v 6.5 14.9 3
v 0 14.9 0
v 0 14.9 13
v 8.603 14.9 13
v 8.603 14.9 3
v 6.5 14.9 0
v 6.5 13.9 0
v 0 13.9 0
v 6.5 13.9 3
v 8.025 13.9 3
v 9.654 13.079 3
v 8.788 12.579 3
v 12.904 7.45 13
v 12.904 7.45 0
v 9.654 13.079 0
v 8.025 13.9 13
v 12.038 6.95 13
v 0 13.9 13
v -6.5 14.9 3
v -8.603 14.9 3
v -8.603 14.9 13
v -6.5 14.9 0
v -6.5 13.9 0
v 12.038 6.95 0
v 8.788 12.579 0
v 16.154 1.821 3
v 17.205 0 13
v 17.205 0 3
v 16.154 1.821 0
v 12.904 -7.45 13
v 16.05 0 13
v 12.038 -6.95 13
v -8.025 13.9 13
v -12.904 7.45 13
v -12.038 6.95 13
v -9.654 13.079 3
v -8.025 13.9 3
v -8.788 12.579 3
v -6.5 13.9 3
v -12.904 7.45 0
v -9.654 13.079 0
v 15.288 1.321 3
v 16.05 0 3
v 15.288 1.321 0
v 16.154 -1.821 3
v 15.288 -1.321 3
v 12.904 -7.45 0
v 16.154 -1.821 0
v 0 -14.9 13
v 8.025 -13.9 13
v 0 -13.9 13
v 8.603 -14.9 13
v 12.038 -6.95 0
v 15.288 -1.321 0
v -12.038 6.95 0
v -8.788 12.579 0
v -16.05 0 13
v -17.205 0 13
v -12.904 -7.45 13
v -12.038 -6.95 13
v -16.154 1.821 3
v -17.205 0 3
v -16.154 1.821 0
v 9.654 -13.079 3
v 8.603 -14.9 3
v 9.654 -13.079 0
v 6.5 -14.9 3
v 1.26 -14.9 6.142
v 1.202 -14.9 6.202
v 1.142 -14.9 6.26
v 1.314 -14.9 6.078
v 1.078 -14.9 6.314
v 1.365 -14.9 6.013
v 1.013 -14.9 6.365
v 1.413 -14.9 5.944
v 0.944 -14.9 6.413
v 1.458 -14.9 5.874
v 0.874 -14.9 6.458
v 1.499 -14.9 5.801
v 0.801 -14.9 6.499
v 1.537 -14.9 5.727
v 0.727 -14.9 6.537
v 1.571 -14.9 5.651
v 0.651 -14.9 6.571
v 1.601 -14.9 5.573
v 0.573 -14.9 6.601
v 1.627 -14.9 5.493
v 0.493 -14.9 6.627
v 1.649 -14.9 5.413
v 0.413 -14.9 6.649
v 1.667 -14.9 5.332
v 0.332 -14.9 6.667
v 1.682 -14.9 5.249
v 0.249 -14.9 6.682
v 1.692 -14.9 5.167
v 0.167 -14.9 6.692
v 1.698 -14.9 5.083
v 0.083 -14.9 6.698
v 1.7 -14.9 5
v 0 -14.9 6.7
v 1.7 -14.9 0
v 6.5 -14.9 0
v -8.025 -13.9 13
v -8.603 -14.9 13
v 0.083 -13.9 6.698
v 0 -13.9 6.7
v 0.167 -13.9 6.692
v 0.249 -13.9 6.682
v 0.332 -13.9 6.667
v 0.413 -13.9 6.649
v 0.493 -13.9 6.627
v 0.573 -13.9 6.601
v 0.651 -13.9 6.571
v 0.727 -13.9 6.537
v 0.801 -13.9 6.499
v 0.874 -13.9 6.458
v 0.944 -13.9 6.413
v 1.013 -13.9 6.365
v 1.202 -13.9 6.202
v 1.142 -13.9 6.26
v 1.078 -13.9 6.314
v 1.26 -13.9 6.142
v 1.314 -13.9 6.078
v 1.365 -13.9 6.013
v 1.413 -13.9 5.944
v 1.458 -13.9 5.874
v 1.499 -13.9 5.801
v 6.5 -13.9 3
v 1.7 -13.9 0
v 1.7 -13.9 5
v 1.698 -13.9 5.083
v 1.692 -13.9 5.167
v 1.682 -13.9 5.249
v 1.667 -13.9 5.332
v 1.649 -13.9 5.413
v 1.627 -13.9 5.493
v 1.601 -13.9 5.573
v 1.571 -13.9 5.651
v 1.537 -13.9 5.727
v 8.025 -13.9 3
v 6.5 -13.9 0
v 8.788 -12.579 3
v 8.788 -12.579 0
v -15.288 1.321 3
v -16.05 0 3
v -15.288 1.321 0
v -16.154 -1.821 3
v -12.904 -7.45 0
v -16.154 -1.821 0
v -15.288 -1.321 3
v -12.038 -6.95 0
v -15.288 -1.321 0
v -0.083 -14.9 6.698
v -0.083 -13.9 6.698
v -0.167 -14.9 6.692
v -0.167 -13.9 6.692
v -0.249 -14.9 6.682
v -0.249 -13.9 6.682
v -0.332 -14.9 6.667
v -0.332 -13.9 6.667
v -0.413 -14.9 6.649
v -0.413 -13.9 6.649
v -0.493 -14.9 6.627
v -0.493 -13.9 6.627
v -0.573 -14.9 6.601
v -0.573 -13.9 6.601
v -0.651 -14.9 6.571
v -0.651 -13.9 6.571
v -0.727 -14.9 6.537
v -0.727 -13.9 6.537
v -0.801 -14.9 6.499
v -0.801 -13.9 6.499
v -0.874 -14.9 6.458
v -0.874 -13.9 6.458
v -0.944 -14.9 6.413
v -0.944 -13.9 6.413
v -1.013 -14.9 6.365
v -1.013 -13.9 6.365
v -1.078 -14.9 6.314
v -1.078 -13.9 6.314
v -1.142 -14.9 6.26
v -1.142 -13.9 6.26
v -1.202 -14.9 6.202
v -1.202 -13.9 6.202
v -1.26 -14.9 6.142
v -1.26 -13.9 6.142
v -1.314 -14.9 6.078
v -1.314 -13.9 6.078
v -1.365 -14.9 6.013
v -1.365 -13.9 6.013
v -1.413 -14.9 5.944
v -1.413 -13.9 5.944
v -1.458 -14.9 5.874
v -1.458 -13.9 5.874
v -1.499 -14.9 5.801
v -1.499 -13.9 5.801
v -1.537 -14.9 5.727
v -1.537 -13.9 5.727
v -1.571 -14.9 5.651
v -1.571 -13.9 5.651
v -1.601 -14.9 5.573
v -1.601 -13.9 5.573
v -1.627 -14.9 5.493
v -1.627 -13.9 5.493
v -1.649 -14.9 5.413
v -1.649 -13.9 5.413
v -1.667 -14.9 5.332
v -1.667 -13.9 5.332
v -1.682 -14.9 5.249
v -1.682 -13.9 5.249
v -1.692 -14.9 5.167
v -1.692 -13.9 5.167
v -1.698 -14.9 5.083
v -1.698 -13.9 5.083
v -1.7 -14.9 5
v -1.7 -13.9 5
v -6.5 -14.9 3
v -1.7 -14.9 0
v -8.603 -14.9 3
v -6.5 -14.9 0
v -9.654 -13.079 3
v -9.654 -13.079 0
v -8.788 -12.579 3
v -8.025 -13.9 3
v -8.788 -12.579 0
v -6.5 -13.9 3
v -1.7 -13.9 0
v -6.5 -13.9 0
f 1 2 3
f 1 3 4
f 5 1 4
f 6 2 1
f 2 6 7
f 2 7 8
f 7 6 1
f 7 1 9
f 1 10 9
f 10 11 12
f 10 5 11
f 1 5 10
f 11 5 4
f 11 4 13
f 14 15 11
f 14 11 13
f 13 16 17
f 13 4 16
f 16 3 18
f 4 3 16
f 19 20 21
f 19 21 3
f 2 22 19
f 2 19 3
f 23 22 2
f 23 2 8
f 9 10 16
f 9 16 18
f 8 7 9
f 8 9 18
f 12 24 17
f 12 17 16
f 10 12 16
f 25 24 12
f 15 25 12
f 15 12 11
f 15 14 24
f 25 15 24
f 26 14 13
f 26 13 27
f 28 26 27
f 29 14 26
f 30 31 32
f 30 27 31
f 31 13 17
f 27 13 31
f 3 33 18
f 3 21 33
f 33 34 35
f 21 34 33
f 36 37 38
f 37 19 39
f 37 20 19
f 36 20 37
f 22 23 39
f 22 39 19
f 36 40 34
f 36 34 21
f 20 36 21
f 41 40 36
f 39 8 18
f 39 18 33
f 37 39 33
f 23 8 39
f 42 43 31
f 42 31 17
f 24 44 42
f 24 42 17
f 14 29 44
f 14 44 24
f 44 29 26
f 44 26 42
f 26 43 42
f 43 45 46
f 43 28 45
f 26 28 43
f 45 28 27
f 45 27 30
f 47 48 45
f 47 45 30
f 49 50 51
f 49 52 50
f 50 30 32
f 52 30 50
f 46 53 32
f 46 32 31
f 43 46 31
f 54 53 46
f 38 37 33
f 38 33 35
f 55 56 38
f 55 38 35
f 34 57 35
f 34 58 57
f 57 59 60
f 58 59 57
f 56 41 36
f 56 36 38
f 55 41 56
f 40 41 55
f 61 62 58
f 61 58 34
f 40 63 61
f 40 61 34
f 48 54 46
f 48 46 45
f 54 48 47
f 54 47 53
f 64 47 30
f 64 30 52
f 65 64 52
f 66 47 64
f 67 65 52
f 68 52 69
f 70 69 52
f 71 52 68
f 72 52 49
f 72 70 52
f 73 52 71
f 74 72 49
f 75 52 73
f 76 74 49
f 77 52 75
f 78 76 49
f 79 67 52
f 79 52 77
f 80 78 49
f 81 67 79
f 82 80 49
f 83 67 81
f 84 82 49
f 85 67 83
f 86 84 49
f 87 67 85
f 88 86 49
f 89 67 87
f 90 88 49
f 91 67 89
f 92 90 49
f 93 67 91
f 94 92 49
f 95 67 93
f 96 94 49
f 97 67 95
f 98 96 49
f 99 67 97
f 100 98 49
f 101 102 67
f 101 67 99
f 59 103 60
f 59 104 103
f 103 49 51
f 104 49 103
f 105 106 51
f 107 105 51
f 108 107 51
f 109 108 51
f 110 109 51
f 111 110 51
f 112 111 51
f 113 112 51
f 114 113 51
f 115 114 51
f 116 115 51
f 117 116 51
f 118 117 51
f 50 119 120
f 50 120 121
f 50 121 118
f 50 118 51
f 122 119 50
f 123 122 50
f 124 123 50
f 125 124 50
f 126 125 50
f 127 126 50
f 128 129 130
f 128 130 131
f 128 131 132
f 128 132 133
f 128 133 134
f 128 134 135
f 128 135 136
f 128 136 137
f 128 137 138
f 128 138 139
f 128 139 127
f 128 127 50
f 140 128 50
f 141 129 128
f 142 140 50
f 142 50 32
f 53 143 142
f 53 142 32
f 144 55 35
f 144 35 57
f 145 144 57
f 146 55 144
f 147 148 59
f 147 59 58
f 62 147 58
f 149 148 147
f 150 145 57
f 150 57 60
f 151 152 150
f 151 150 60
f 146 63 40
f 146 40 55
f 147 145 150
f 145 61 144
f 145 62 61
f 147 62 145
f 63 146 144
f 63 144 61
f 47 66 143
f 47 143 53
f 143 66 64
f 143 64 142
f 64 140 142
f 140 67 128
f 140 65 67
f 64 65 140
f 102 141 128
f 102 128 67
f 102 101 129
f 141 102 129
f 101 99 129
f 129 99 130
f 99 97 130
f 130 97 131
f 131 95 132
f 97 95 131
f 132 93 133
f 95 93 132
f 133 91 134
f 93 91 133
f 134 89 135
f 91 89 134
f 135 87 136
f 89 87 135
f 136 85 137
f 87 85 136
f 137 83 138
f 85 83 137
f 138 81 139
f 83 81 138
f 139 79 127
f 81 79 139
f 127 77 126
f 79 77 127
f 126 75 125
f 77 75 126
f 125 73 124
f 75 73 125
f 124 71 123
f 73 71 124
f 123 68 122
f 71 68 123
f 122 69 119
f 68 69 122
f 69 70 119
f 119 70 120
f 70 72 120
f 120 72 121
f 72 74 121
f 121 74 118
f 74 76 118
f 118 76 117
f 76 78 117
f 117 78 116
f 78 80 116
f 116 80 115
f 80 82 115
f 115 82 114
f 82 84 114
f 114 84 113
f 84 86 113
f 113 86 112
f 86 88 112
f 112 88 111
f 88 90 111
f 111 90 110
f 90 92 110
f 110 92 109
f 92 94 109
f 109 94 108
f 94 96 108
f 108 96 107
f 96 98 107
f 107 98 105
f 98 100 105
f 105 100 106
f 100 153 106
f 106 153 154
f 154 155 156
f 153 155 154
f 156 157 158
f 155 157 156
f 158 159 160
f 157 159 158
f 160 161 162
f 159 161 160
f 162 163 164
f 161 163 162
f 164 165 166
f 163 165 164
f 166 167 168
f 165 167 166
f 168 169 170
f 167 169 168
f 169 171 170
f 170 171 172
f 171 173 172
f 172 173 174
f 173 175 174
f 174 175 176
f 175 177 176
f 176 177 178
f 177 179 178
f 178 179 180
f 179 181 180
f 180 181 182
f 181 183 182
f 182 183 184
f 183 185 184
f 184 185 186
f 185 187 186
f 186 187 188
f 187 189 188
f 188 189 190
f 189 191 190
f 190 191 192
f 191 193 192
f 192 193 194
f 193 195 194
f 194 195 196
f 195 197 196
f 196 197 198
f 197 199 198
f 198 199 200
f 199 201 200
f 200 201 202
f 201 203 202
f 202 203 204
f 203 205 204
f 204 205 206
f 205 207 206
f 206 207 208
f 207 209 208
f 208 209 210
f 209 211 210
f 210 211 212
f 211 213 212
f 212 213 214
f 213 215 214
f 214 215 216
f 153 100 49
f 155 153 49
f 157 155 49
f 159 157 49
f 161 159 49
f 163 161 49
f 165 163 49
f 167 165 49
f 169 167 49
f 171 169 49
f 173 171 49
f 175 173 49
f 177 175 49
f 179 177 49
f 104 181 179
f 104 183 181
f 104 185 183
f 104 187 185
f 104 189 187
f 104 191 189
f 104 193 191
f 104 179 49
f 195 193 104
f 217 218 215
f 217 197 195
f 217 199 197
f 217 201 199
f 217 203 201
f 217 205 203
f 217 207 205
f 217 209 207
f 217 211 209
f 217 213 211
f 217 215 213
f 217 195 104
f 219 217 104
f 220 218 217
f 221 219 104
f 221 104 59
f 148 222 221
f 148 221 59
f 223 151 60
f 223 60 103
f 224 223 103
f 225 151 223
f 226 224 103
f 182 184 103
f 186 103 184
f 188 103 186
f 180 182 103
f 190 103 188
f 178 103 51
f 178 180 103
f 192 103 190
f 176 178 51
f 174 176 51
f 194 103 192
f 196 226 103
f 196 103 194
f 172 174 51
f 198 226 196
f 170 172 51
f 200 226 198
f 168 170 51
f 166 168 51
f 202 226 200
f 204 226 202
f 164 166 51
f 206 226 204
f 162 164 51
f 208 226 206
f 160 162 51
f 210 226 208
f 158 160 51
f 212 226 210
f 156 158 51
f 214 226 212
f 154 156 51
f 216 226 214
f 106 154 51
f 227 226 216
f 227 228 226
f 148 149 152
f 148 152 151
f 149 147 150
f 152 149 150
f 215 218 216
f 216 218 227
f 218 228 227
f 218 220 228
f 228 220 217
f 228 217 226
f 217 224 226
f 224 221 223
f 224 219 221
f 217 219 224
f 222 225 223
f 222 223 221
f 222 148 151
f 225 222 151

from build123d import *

# Parameters (mm, degrees)
PAD_DEPTH          = 13
POCKET_DEPTH       = 3
POLARPATTERN_COUNT = 6
POCKET001_DEPTH    = 2


with BuildPart() as part:
    # Sketch → Pad (new body)
    with BuildSketch(Plane.XY):
        Polygon((0, 14.9), (8.6025190109, 14.9), (12.9037785164, 7.45), (12.0377531126, 6.95), (8.0251687417, 13.9), (0, 13.9), align=None)
    pad = extrude(amount=PAD_DEPTH)

    # Sketch001 → Pocket (cut)
    with BuildSketch(Plane.XY):
        Polygon((6.5, 11.2583302492), (11.7753229775, 14.3040393903), (6.5, 17.3497485314), align=None)
    pocket = extrude(amount=POCKET_DEPTH, mode=Mode.SUBTRACT)

    # PolarPattern: Pad, Pocket ×6 about axis
    polarpattern_axis = Axis((0, 0, 0), (0, 0, 1))
    for i in range(1, POLARPATTERN_COUNT):
        add(pad.rotate(polarpattern_axis, i * 360 / POLARPATTERN_COUNT))
        add(pocket.rotate(polarpattern_axis, i * 360 / POLARPATTERN_COUNT), mode=Mode.SUBTRACT)

    # Sketch002 (on Face50 of PolarPattern) → Pocket001 (cut)
    with BuildSketch(Plane.XZ.offset(14.9)):
        with BuildLine():
            ThreePointArc((1.7, 5), (0, 6.7), (-1.7, 5))
            Line((-1.7, 5), (-1.7, 0))
            Line((-1.7, 0), (1.7, 0))
            Line((1.7, 0), (1.7, 5))
        make_face()
    extrude(amount=-POCKET001_DEPTH, mode=Mode.SUBTRACT)


solid = part.part
